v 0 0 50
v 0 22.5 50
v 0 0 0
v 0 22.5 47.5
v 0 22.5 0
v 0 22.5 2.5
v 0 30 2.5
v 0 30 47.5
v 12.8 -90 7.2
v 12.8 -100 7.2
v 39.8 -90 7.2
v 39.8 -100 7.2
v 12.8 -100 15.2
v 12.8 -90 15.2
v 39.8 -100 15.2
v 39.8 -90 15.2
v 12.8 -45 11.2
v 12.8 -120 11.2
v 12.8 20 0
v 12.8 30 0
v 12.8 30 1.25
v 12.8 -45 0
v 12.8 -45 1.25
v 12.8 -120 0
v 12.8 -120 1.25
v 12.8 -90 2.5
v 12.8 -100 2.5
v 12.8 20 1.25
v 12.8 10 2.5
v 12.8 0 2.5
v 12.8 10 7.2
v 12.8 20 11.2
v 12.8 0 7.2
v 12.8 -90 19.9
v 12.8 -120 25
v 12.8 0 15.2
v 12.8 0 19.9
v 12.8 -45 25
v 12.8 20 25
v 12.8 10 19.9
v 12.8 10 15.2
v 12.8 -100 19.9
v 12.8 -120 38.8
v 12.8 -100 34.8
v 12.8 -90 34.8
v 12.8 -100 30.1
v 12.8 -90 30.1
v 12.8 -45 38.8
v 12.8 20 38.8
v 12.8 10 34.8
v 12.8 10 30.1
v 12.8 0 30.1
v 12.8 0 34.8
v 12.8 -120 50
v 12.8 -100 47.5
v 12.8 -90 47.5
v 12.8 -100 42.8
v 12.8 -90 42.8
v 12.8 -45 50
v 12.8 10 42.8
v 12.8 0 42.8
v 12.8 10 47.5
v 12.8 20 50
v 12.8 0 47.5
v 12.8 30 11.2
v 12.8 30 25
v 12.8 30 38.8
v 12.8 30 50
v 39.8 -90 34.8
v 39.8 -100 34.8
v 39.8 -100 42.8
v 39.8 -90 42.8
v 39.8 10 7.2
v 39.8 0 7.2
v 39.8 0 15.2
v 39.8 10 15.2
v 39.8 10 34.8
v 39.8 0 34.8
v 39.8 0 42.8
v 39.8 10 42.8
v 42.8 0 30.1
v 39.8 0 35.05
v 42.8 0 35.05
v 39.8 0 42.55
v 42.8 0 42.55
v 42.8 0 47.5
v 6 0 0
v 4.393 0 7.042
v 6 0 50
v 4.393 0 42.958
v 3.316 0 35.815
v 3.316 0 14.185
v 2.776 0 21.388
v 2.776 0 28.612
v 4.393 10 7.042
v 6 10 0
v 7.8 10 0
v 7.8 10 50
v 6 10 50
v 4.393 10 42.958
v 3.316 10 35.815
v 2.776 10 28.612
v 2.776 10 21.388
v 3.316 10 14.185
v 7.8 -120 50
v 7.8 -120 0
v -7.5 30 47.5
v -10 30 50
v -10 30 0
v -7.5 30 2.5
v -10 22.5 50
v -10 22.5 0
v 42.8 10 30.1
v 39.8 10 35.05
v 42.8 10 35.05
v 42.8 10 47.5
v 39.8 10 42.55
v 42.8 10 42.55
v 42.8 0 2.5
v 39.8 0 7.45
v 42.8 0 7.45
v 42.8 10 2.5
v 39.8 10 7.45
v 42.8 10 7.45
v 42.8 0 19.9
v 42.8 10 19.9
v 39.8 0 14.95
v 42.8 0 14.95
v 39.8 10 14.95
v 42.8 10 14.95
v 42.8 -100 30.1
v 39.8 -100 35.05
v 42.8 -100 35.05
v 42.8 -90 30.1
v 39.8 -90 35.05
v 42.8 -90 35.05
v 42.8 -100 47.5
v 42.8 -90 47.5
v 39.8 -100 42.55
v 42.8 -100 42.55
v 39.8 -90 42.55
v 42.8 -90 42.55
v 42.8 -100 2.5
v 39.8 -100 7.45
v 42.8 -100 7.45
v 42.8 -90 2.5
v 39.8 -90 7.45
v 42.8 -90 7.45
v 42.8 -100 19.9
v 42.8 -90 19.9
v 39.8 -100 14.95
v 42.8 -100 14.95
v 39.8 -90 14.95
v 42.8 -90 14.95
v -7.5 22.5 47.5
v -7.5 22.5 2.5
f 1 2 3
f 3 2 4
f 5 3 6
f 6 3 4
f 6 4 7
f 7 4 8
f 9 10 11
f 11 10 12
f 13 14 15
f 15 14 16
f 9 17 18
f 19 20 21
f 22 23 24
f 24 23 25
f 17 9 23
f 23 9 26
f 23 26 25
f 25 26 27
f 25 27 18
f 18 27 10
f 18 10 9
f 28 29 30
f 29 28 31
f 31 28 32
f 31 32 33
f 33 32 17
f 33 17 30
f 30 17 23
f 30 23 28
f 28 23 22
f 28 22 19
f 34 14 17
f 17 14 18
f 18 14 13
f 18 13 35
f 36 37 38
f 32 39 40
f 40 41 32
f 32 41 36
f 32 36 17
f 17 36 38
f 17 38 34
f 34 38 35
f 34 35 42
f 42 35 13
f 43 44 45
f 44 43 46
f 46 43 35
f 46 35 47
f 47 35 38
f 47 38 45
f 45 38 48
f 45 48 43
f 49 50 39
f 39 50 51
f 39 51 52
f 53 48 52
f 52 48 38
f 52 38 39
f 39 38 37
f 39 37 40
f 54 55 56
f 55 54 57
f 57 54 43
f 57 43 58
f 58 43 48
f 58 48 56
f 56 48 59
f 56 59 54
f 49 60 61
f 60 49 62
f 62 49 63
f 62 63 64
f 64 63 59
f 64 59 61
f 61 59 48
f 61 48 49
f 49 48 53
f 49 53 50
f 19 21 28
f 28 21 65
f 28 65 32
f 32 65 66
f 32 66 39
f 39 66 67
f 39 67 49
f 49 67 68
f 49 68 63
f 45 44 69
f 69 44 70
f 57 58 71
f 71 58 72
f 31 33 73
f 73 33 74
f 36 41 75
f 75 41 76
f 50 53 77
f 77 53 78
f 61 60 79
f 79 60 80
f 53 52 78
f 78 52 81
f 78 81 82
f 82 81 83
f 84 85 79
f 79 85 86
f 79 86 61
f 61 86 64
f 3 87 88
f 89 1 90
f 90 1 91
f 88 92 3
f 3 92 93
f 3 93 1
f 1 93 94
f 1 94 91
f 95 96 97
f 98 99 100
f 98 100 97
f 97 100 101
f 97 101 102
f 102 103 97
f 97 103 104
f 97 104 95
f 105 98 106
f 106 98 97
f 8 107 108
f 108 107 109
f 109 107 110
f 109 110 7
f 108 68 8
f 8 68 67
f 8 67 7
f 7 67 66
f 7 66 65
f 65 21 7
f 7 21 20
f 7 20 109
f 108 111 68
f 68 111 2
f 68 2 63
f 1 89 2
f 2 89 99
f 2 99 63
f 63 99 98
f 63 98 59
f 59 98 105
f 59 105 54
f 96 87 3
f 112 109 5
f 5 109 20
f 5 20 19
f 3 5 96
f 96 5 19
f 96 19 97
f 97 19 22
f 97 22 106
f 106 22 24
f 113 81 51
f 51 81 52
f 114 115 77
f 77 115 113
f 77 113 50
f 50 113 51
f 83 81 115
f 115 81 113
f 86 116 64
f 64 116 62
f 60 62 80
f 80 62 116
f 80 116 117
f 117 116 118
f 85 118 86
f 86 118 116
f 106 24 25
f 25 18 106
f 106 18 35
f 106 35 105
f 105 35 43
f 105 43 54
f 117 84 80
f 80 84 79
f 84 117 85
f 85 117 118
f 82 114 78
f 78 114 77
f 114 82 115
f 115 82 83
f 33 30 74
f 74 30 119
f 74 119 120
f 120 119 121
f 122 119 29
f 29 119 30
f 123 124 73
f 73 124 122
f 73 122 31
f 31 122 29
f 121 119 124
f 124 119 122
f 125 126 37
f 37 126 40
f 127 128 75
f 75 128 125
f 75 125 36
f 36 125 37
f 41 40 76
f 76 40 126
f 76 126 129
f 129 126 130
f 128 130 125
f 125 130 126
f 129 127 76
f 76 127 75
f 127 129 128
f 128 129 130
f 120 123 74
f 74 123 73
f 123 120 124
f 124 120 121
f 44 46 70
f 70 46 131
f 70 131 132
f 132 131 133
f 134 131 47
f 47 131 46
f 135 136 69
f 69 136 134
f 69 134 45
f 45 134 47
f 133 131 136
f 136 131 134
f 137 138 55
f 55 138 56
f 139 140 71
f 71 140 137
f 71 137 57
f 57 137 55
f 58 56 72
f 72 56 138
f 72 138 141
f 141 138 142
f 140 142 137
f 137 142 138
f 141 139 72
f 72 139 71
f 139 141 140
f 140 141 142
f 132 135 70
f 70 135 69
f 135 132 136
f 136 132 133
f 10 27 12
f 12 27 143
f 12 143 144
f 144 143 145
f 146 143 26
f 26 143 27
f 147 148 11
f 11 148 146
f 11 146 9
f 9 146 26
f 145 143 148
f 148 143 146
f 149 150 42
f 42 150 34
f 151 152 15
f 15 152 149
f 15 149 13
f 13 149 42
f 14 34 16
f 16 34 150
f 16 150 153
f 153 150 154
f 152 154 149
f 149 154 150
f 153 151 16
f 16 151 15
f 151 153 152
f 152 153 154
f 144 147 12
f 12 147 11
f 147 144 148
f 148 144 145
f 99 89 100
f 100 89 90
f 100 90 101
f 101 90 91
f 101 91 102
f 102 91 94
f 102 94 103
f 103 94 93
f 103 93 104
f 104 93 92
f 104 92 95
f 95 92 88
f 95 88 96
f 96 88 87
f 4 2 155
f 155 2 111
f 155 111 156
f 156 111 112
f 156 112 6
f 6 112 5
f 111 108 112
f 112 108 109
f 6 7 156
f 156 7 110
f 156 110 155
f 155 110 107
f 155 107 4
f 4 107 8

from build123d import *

# Parameters (mm, degrees)
BOSS_EXTRUDE1_DEPTH       = 50
SKETCH2_W                 = 4.7
SKETCH2_H                 = 10
BOSS_EXTRUDE2_DEPTH       = 30
SKETCH3_W                 = 5
SKETCH3_H                 = 50
BOSS_EXTRUDE3_DEPTH       = 120
SKETCH4_W                 = 3
SKETCH4_H                 = 10
BOSS_EXTRUDE4_DEPTH       = 0.25
SKETCH5_W                 = 3
SKETCH5_H                 = 10
BOSS_EXTRUDE5_DEPTH       = 0.25
LPATTERN1_COUNT           = 2
LPATTERN1_PITCH           = 27.6
LPATTERN2_COUNT           = 2
LPATTERN2_PITCH           = 100
LPATTERN2_COPY_1_SKETCH_W = 4.7
LPATTERN2_COPY_1_SKETCH_H = 10
LPATTERN2_COPY_1_DEPTH    = 30
LPATTERN2_COPY_2_SKETCH_W = 3
LPATTERN2_COPY_2_SKETCH_H = 10
LPATTERN2_COPY_2_DEPTH    = 0.25
LPATTERN2_COPY_3_SKETCH_W = 3
LPATTERN2_COPY_3_SKETCH_H = 10
LPATTERN2_COPY_3_DEPTH    = 0.25
CORTE_EXTRUS_O1_DEPTH     = 10
ESBO_O3_W                 = 50
ESBO_O3_H                 = 7.5
RESSALTO_EXTRUS_O2_DEPTH  = 10
ESBO_O4_W                 = 7.5
ESBO_O4_H                 = 45
CORTE_EXTRUS_O2_DEPTH     = 10


with BuildPart() as part:
    # Sketch1 → Boss-Extrude1 (new body)
    with BuildSketch(Plane.XY):
        Polygon((0, 0), (0, 30), (12.8, 30), (12.8, 0), (7.8, 0), (7.8, 10), (6, 10), (6, 0), align=None)
    extrude(amount=BOSS_EXTRUDE1_DEPTH)

    # Sketch2 → Boss-Extrude2 (add)
    with BuildSketch(Plane(origin=(12.8, 0, 0), x_dir=(0, 0, -1), z_dir=(1, 0, 0))):
        with Locations((-45.15, 5)):
            Rectangle(SKETCH2_W, SKETCH2_H)
        with Locations((-32.45, 5)):
            Rectangle(SKETCH2_W, SKETCH2_H)
    boss_extrude2 = extrude(amount=BOSS_EXTRUDE2_DEPTH)

    # Sketch3 → Boss-Extrude3 (add)
    with BuildSketch(Plane.XZ):
        with Locations((10.3, 25)):
            Rectangle(SKETCH3_W, SKETCH3_H)
    extrude(amount=BOSS_EXTRUDE3_DEPTH)

    # Sketch4 → Boss-Extrude4 (add)
    with BuildSketch(Plane(origin=(0, 0, 42.8), x_dir=(-1, 0, 0), z_dir=(0, 0, -1))):
        with Locations((-41.3, 5)):
            Rectangle(SKETCH4_W, SKETCH4_H)
    boss_extrude4 = extrude(amount=BOSS_EXTRUDE4_DEPTH)

    # Sketch5 → Boss-Extrude5 (add)
    with BuildSketch(Plane.XY.offset(34.8)):
        with Locations((41.3, 5)):
            Rectangle(SKETCH5_W, SKETCH5_H)
    boss_extrude5 = extrude(amount=BOSS_EXTRUDE5_DEPTH)

    # LPattern1: Boss-Extrude2, Boss-Extrude4, Boss-Extrude5 ×2
    with Locations(*[(0, 0, -i * LPATTERN1_PITCH) for i in range(1, LPATTERN1_COUNT)]):
        add(boss_extrude2)
        add(boss_extrude4)
        add(boss_extrude5)

    # LPattern2: Boss-Extrude2, Boss-Extrude4, Boss-Extrude5 ×2
    with Locations(*[(0, -i * LPATTERN2_PITCH, 0) for i in range(1, LPATTERN2_COUNT)]):
        add(boss_extrude2)
        add(boss_extrude4)
        add(boss_extrude5)

    # LPattern2 copy 1 sketch → LPattern2 copy 1 (add)
    with BuildSketch(Plane(origin=(12.8, -100, -27.6), x_dir=(0, 0, -1), z_dir=(1, 0, 0))):
        with Locations((-45.15, 5)):
            Rectangle(LPATTERN2_COPY_1_SKETCH_W, LPATTERN2_COPY_1_SKETCH_H)
        with Locations((-32.45, 5)):
            Rectangle(LPATTERN2_COPY_1_SKETCH_W, LPATTERN2_COPY_1_SKETCH_H)
    extrude(amount=LPATTERN2_COPY_1_DEPTH)

    # LPattern2 copy 2 sketch → LPattern2 copy 2 (add)
    with BuildSketch(Plane(origin=(0, -100, 15.2), x_dir=(-1, 0, 0), z_dir=(0, 0, -1))):
        with Locations((-41.3, 5)):
            Rectangle(LPATTERN2_COPY_2_SKETCH_W, LPATTERN2_COPY_2_SKETCH_H)
    extrude(amount=LPATTERN2_COPY_2_DEPTH)

    # LPattern2 copy 3 sketch → LPattern2 copy 3 (add)
    with BuildSketch(Plane(origin=(0, -100, 7.2), x_dir=(1, 0, 0), z_dir=(0, 0, 1))):
        with Locations((41.3, 5)):
            Rectangle(LPATTERN2_COPY_3_SKETCH_W, LPATTERN2_COPY_3_SKETCH_H)
    extrude(amount=LPATTERN2_COPY_3_DEPTH)

    # Esboço2 → Corte-extrusão1 (cut)
    with BuildSketch(Plane.XZ):
        with BuildLine():
            Line((6, 50), (6, 0))
            ThreePointArc((6, 0), (2.708949196, 25), (6, 50))
        make_face()
    extrude(amount=-CORTE_EXTRUS_O1_DEPTH, mode=Mode.SUBTRACT)

    # Esboço3 → Ressalto-extrusão2 (add)
    with BuildSketch(Plane.ZY):
        with Locations((25, 26.25)):
            Rectangle(ESBO_O3_W, ESBO_O3_H)
    extrude(amount=RESSALTO_EXTRUS_O2_DEPTH)

    # Esboço4 → Corte-extrusão2 (cut)
    with BuildSketch(Plane.XZ.offset(-22.5)):
        with Locations((-3.75, 25)):
            Rectangle(ESBO_O4_W, ESBO_O4_H)
    extrude(amount=-CORTE_EXTRUS_O2_DEPTH, mode=Mode.SUBTRACT)


solid = part.part
